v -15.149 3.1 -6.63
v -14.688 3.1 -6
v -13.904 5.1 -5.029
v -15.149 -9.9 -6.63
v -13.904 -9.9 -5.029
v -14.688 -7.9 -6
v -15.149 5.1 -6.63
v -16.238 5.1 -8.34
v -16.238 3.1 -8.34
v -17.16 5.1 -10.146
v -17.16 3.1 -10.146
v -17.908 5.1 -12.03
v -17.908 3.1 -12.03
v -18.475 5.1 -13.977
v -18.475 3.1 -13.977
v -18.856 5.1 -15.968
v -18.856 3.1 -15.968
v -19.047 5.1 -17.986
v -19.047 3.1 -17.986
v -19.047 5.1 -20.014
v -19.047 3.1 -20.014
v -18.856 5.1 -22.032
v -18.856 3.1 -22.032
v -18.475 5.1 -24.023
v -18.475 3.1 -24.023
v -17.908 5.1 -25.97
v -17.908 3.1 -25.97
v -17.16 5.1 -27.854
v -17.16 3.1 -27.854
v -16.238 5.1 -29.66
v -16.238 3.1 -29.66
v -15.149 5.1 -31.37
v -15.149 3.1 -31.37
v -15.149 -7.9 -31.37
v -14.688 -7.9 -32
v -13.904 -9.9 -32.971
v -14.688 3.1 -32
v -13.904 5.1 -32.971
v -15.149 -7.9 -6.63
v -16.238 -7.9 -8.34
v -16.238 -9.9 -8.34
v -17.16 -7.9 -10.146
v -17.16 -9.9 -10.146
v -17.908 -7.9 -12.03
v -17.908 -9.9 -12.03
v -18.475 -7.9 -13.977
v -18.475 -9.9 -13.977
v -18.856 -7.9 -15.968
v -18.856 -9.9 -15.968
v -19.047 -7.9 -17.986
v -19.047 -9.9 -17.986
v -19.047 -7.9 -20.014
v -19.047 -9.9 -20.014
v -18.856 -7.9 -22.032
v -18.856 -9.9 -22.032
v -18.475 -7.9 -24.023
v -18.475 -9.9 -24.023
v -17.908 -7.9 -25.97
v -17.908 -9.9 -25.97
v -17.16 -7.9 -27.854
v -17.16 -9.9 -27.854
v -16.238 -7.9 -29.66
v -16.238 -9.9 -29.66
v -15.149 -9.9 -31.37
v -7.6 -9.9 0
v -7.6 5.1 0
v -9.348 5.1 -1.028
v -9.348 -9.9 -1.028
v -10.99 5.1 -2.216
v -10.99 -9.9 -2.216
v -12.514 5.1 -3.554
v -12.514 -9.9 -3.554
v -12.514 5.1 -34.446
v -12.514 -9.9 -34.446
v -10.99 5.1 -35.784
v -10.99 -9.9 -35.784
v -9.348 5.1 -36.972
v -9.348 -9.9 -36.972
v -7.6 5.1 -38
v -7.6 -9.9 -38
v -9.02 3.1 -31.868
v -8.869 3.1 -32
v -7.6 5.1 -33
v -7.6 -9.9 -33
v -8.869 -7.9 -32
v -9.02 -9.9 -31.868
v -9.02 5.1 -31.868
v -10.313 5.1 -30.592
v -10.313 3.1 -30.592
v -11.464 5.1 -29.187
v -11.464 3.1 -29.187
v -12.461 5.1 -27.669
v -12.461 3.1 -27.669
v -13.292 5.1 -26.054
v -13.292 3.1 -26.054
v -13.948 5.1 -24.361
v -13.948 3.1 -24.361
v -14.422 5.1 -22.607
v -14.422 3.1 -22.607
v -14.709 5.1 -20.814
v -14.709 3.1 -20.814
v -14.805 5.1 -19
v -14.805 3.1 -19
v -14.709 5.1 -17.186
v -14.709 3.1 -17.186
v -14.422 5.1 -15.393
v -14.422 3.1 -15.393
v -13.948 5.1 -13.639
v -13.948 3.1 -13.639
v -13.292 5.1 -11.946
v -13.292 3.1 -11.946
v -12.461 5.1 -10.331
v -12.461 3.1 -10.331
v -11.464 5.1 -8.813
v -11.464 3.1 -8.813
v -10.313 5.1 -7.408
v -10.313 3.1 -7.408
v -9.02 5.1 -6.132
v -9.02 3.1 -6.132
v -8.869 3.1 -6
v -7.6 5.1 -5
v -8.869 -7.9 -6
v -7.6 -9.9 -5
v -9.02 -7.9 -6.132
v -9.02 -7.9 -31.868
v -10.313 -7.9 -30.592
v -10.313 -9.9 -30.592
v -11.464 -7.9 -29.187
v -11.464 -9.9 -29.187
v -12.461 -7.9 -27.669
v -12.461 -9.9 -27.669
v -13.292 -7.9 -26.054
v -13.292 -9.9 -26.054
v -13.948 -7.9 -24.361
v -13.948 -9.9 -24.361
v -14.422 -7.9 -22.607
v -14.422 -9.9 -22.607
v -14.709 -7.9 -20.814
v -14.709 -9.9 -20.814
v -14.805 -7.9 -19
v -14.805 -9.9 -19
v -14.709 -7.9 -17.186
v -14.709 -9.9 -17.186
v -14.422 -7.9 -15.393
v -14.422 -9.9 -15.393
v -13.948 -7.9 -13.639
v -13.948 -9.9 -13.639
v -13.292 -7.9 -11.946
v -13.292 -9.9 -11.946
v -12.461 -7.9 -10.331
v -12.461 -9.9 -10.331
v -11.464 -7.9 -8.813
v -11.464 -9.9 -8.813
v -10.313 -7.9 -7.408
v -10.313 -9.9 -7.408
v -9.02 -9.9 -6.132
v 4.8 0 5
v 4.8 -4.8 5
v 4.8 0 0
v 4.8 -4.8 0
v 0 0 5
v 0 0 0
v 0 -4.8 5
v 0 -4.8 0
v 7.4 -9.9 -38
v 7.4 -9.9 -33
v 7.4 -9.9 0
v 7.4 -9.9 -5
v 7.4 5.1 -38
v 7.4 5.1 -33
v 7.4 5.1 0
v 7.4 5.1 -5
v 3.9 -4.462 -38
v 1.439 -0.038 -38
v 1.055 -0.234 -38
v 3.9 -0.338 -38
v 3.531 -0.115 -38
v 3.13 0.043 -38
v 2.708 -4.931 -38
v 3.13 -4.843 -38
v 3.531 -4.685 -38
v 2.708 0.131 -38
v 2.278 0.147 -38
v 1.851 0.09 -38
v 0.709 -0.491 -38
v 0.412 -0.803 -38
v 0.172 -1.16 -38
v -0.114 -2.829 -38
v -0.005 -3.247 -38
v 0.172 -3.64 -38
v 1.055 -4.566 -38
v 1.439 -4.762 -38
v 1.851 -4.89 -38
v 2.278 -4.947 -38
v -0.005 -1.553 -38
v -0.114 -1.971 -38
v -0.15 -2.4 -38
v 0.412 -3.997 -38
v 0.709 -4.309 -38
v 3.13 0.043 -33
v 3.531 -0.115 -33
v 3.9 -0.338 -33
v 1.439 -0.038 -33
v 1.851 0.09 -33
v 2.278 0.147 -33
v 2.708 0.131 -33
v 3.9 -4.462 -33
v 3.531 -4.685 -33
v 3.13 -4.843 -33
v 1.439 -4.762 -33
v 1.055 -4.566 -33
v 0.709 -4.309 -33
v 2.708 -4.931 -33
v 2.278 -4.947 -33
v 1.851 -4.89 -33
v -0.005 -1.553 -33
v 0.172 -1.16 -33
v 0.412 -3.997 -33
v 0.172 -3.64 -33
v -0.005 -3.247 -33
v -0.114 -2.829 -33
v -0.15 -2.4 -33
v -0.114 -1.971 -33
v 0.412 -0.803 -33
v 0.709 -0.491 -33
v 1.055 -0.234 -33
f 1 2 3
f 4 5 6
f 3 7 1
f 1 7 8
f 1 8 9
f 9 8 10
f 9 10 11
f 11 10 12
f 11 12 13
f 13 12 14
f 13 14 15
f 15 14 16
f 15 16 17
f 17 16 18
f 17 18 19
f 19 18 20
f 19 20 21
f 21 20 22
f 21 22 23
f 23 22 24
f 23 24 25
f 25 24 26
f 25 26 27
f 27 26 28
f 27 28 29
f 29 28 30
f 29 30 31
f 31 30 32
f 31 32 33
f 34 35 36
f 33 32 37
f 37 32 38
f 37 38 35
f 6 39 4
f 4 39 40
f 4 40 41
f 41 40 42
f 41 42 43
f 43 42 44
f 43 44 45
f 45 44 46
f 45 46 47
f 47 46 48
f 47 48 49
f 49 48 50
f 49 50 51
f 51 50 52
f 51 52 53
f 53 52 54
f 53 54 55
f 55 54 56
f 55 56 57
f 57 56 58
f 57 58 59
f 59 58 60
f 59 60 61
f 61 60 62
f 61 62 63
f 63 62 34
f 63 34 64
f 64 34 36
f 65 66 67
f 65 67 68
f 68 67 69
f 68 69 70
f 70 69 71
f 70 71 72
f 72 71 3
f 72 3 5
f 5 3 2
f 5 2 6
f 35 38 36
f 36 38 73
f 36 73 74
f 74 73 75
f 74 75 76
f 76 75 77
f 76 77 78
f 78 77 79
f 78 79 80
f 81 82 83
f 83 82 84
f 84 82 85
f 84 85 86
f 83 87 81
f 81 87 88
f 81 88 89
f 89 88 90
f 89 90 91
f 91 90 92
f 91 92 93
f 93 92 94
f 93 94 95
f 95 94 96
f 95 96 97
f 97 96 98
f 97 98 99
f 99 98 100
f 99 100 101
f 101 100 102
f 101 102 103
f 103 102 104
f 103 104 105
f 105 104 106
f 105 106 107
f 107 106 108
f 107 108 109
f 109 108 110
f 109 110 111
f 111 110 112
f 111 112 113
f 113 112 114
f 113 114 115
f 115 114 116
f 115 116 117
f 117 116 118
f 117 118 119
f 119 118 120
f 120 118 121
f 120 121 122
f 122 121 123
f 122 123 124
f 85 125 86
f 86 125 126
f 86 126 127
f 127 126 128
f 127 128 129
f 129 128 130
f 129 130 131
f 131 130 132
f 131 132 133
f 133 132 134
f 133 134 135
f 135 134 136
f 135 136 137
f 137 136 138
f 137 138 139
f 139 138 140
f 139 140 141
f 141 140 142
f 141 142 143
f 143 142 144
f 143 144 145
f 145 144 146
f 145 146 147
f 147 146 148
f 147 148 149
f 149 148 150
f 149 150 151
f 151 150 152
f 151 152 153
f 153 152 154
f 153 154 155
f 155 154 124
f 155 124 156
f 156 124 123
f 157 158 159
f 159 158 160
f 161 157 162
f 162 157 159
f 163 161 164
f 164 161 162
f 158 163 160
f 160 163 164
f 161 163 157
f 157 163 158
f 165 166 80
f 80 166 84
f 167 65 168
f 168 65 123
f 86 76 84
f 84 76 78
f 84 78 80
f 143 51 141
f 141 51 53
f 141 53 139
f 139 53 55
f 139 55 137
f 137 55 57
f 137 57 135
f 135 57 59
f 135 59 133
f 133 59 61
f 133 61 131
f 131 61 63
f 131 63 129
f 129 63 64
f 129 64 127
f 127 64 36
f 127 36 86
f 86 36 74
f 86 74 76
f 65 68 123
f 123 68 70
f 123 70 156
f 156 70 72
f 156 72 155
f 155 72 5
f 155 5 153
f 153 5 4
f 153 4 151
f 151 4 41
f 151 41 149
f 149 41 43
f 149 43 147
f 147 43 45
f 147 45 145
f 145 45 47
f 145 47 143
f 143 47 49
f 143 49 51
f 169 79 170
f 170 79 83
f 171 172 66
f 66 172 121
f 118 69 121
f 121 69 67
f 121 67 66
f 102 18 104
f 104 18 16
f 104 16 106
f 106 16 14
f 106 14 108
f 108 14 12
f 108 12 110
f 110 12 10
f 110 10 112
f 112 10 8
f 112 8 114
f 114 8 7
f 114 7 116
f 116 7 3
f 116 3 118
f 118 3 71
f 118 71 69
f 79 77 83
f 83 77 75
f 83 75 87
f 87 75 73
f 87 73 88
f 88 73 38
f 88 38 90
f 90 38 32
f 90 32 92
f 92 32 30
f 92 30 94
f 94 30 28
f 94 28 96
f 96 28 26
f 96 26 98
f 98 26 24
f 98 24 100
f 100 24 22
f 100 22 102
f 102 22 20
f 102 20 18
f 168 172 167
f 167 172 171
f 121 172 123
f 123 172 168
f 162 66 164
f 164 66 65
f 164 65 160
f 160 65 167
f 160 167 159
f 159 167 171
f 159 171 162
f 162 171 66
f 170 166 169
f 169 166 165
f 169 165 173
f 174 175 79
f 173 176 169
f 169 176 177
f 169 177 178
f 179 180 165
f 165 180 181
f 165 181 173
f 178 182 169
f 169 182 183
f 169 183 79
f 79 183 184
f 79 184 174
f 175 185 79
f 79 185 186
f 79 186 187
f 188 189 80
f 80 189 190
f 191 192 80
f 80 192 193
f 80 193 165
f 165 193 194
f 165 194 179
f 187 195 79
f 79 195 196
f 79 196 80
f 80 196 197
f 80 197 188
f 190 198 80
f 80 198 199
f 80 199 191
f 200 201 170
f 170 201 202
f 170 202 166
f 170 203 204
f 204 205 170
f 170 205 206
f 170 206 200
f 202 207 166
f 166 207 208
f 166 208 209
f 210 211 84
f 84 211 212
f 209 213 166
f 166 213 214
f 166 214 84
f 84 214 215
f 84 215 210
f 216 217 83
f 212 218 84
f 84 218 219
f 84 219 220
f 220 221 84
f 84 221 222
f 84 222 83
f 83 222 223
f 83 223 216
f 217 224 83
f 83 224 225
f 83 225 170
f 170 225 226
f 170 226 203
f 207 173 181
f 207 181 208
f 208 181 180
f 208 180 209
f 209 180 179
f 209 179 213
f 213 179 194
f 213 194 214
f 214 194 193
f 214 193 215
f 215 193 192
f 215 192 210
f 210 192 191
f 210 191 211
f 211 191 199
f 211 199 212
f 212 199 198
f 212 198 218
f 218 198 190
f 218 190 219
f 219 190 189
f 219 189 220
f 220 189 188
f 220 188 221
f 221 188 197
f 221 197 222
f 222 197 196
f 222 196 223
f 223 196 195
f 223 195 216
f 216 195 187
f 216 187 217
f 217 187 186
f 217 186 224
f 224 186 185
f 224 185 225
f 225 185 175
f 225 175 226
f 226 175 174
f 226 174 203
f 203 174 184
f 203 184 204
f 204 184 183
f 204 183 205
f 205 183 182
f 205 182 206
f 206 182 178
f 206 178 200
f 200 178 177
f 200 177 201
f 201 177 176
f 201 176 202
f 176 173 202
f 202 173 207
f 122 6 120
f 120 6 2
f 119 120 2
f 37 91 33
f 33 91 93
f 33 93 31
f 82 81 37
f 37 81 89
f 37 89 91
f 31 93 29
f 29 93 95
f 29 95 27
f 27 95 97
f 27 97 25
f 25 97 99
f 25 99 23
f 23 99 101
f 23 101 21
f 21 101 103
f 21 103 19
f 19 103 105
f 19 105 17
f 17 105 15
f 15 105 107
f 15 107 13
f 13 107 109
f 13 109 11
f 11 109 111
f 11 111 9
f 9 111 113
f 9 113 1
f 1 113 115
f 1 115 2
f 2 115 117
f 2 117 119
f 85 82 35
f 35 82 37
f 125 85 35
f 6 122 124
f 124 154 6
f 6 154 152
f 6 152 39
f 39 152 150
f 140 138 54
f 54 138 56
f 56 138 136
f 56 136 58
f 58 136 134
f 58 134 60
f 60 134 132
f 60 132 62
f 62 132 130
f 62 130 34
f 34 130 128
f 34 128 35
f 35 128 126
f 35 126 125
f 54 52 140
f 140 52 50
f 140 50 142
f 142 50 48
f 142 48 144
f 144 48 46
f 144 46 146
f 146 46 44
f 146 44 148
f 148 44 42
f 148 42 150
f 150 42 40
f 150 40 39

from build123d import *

# Parameters (mm, degrees)
SKIZZE7_W                            = 4.8
SKIZZE7_H                            = 4.8
AUFSATZ_LINEAR_AUSTRAGEN3_DEPTH      = 5
SKIZZE7_3_W                          = 15
SKIZZE7_3_H                          = 15
SKIZZE7_3_W_2                        = 4.8
SKIZZE7_3_H_2                        = 4.8
AUFSATZ_LINEAR_AUSTRAGEN4_DEPTH      = 5
AUFSATZ_LINEAR_START                 = -38
SKIZZE7_4_W                          = 15
SKIZZE7_4_H                          = 15
AUFSATZ_LINEAR_AUSTRAGEN5_DEPTH      = 5
AUFSATZ_LINEAR_AUSTRAGEN6_DEPTH      = 15
SCHNITT_LINEAR_AUSTRAGEN6_REACH      = 50.07
SCHNITT_LINEAR_AUSTRAGEN7_REACH      = 49.357
SCHNITT_LINEAR_AUSTRAGEN7_END_RADIUS = 21.470910554
SKIZZE12_W                           = 26
SKIZZE12_H                           = 11


with BuildPart() as part:
    # Skizze7 (on Front Plane) → Aufsatz-Linear austragen3 (new body)
    with BuildSketch(Plane.XY):
        with Locations((2.4, -2.4)):
            Rectangle(SKIZZE7_W, SKIZZE7_H)
    extrude(amount=AUFSATZ_LINEAR_AUSTRAGEN3_DEPTH)

    # Skizze7<3> (on Front Plane) → Aufsatz-Linear austragen4 (add)
    with BuildSketch(Plane.XY):
        with Locations((-0.1, -2.4)):
            Rectangle(SKIZZE7_3_W, SKIZZE7_3_H)
        with Locations((2.4, -2.4)):
            Rectangle(SKIZZE7_3_W_2, SKIZZE7_3_H_2, mode=Mode.SUBTRACT)
        with Locations((2.4, -2.4)):
            Rectangle(SKIZZE7_3_W_2, SKIZZE7_3_H_2)
    extrude(amount=-AUFSATZ_LINEAR_AUSTRAGEN4_DEPTH)



with BuildPart() as body_2:
    # Skizze7<4> → Aufsatz-Linear austragen5 (new body)
    with BuildSketch(Plane.XY.offset(AUFSATZ_LINEAR_START)):
        with Locations((-0.1, -2.4)):
            Rectangle(SKIZZE7_4_W, SKIZZE7_4_H)
    extrude(amount=AUFSATZ_LINEAR_AUSTRAGEN5_DEPTH)


with BuildPart() as part_1:
    add(part.part)

    add(body_2.part)  # Aufsatz-Linear austragen6 merges body 2
    # Skizze9 → Aufsatz-Linear austragen6 (add)
    with BuildSketch(Plane(origin=(0, 5.1, 0), x_dir=(1, 0, 0), z_dir=(0, 1, 0))):
        with BuildLine():
            Line((-7.6, 0), (-7.6, 5))
            ThreePointArc((-7.6, 5), (-14.804650534, 19), (-7.6, 33))
            Line((-7.6, 33), (-7.6, 38))
            ThreePointArc((-7.6, 38), (-19.070910554, 19), (-7.6, 0))
        make_face()
    extrude(amount=-AUFSATZ_LINEAR_AUSTRAGEN6_DEPTH)

    # Skizze11 → Schnitt-Linear austragen6 (cut, up to next)
    with BuildSketch(Plane(origin=(0, 0, -38), x_dir=(-1, 0, 0), z_dir=(0, 0, -1)), mode=Mode.PRIVATE) as schnitt_linear_austragen6_sk1:
        with BuildLine():
            Line((-3.9, -0.337840937), (-3.9, -4.462159063))
            ThreePointArc((-3.9, -4.462159063), (-1.242956353, -4.672388611), (0.15, -2.4))
            ThreePointArc((0.15, -2.4), (-1.242956353, -0.127611389), (-3.9, -0.337840937))
        make_face()
    schnitt_linear_austragen6_tool1 = extrude(schnitt_linear_austragen6_sk1.sketch, amount=-SCHNITT_LINEAR_AUSTRAGEN6_REACH, mode=Mode.PRIVATE) & part_1.part
    add(schnitt_linear_austragen6_tool1.solids().sort_by_distance((2.063945, -2.4, -38))[0], mode=Mode.SUBTRACT)

    # Schnitt-Linear austragen7: up to this cylinder (the profile starts inside it)
    schnitt_linear_austragen7_end = Plane(origin=(2.4, -2.4, -19), z_dir=(0, 1, 0)) * Cylinder(SCHNITT_LINEAR_AUSTRAGEN7_END_RADIUS, 142.655821107, mode=Mode.PRIVATE)
    # Skizze12 → Schnitt-Linear austragen7 (cut, up to the surface)
    with BuildSketch(Plane(origin=(7.4, 0, 0), x_dir=(0, 0, -1), z_dir=(1, 0, 0)), mode=Mode.PRIVATE) as schnitt_linear_austragen7_sk1:
        with Locations((19, -2.4)):
            Rectangle(SKIZZE12_W, SKIZZE12_H)
    schnitt_linear_austragen7_tool1 = extrude(schnitt_linear_austragen7_sk1.sketch, amount=-SCHNITT_LINEAR_AUSTRAGEN7_REACH, mode=Mode.PRIVATE) & schnitt_linear_austragen7_end
    add(schnitt_linear_austragen7_tool1.solids().sort_by_distance((7.4, -2.4, -19))[0], mode=Mode.SUBTRACT)


solid = part_1.part
